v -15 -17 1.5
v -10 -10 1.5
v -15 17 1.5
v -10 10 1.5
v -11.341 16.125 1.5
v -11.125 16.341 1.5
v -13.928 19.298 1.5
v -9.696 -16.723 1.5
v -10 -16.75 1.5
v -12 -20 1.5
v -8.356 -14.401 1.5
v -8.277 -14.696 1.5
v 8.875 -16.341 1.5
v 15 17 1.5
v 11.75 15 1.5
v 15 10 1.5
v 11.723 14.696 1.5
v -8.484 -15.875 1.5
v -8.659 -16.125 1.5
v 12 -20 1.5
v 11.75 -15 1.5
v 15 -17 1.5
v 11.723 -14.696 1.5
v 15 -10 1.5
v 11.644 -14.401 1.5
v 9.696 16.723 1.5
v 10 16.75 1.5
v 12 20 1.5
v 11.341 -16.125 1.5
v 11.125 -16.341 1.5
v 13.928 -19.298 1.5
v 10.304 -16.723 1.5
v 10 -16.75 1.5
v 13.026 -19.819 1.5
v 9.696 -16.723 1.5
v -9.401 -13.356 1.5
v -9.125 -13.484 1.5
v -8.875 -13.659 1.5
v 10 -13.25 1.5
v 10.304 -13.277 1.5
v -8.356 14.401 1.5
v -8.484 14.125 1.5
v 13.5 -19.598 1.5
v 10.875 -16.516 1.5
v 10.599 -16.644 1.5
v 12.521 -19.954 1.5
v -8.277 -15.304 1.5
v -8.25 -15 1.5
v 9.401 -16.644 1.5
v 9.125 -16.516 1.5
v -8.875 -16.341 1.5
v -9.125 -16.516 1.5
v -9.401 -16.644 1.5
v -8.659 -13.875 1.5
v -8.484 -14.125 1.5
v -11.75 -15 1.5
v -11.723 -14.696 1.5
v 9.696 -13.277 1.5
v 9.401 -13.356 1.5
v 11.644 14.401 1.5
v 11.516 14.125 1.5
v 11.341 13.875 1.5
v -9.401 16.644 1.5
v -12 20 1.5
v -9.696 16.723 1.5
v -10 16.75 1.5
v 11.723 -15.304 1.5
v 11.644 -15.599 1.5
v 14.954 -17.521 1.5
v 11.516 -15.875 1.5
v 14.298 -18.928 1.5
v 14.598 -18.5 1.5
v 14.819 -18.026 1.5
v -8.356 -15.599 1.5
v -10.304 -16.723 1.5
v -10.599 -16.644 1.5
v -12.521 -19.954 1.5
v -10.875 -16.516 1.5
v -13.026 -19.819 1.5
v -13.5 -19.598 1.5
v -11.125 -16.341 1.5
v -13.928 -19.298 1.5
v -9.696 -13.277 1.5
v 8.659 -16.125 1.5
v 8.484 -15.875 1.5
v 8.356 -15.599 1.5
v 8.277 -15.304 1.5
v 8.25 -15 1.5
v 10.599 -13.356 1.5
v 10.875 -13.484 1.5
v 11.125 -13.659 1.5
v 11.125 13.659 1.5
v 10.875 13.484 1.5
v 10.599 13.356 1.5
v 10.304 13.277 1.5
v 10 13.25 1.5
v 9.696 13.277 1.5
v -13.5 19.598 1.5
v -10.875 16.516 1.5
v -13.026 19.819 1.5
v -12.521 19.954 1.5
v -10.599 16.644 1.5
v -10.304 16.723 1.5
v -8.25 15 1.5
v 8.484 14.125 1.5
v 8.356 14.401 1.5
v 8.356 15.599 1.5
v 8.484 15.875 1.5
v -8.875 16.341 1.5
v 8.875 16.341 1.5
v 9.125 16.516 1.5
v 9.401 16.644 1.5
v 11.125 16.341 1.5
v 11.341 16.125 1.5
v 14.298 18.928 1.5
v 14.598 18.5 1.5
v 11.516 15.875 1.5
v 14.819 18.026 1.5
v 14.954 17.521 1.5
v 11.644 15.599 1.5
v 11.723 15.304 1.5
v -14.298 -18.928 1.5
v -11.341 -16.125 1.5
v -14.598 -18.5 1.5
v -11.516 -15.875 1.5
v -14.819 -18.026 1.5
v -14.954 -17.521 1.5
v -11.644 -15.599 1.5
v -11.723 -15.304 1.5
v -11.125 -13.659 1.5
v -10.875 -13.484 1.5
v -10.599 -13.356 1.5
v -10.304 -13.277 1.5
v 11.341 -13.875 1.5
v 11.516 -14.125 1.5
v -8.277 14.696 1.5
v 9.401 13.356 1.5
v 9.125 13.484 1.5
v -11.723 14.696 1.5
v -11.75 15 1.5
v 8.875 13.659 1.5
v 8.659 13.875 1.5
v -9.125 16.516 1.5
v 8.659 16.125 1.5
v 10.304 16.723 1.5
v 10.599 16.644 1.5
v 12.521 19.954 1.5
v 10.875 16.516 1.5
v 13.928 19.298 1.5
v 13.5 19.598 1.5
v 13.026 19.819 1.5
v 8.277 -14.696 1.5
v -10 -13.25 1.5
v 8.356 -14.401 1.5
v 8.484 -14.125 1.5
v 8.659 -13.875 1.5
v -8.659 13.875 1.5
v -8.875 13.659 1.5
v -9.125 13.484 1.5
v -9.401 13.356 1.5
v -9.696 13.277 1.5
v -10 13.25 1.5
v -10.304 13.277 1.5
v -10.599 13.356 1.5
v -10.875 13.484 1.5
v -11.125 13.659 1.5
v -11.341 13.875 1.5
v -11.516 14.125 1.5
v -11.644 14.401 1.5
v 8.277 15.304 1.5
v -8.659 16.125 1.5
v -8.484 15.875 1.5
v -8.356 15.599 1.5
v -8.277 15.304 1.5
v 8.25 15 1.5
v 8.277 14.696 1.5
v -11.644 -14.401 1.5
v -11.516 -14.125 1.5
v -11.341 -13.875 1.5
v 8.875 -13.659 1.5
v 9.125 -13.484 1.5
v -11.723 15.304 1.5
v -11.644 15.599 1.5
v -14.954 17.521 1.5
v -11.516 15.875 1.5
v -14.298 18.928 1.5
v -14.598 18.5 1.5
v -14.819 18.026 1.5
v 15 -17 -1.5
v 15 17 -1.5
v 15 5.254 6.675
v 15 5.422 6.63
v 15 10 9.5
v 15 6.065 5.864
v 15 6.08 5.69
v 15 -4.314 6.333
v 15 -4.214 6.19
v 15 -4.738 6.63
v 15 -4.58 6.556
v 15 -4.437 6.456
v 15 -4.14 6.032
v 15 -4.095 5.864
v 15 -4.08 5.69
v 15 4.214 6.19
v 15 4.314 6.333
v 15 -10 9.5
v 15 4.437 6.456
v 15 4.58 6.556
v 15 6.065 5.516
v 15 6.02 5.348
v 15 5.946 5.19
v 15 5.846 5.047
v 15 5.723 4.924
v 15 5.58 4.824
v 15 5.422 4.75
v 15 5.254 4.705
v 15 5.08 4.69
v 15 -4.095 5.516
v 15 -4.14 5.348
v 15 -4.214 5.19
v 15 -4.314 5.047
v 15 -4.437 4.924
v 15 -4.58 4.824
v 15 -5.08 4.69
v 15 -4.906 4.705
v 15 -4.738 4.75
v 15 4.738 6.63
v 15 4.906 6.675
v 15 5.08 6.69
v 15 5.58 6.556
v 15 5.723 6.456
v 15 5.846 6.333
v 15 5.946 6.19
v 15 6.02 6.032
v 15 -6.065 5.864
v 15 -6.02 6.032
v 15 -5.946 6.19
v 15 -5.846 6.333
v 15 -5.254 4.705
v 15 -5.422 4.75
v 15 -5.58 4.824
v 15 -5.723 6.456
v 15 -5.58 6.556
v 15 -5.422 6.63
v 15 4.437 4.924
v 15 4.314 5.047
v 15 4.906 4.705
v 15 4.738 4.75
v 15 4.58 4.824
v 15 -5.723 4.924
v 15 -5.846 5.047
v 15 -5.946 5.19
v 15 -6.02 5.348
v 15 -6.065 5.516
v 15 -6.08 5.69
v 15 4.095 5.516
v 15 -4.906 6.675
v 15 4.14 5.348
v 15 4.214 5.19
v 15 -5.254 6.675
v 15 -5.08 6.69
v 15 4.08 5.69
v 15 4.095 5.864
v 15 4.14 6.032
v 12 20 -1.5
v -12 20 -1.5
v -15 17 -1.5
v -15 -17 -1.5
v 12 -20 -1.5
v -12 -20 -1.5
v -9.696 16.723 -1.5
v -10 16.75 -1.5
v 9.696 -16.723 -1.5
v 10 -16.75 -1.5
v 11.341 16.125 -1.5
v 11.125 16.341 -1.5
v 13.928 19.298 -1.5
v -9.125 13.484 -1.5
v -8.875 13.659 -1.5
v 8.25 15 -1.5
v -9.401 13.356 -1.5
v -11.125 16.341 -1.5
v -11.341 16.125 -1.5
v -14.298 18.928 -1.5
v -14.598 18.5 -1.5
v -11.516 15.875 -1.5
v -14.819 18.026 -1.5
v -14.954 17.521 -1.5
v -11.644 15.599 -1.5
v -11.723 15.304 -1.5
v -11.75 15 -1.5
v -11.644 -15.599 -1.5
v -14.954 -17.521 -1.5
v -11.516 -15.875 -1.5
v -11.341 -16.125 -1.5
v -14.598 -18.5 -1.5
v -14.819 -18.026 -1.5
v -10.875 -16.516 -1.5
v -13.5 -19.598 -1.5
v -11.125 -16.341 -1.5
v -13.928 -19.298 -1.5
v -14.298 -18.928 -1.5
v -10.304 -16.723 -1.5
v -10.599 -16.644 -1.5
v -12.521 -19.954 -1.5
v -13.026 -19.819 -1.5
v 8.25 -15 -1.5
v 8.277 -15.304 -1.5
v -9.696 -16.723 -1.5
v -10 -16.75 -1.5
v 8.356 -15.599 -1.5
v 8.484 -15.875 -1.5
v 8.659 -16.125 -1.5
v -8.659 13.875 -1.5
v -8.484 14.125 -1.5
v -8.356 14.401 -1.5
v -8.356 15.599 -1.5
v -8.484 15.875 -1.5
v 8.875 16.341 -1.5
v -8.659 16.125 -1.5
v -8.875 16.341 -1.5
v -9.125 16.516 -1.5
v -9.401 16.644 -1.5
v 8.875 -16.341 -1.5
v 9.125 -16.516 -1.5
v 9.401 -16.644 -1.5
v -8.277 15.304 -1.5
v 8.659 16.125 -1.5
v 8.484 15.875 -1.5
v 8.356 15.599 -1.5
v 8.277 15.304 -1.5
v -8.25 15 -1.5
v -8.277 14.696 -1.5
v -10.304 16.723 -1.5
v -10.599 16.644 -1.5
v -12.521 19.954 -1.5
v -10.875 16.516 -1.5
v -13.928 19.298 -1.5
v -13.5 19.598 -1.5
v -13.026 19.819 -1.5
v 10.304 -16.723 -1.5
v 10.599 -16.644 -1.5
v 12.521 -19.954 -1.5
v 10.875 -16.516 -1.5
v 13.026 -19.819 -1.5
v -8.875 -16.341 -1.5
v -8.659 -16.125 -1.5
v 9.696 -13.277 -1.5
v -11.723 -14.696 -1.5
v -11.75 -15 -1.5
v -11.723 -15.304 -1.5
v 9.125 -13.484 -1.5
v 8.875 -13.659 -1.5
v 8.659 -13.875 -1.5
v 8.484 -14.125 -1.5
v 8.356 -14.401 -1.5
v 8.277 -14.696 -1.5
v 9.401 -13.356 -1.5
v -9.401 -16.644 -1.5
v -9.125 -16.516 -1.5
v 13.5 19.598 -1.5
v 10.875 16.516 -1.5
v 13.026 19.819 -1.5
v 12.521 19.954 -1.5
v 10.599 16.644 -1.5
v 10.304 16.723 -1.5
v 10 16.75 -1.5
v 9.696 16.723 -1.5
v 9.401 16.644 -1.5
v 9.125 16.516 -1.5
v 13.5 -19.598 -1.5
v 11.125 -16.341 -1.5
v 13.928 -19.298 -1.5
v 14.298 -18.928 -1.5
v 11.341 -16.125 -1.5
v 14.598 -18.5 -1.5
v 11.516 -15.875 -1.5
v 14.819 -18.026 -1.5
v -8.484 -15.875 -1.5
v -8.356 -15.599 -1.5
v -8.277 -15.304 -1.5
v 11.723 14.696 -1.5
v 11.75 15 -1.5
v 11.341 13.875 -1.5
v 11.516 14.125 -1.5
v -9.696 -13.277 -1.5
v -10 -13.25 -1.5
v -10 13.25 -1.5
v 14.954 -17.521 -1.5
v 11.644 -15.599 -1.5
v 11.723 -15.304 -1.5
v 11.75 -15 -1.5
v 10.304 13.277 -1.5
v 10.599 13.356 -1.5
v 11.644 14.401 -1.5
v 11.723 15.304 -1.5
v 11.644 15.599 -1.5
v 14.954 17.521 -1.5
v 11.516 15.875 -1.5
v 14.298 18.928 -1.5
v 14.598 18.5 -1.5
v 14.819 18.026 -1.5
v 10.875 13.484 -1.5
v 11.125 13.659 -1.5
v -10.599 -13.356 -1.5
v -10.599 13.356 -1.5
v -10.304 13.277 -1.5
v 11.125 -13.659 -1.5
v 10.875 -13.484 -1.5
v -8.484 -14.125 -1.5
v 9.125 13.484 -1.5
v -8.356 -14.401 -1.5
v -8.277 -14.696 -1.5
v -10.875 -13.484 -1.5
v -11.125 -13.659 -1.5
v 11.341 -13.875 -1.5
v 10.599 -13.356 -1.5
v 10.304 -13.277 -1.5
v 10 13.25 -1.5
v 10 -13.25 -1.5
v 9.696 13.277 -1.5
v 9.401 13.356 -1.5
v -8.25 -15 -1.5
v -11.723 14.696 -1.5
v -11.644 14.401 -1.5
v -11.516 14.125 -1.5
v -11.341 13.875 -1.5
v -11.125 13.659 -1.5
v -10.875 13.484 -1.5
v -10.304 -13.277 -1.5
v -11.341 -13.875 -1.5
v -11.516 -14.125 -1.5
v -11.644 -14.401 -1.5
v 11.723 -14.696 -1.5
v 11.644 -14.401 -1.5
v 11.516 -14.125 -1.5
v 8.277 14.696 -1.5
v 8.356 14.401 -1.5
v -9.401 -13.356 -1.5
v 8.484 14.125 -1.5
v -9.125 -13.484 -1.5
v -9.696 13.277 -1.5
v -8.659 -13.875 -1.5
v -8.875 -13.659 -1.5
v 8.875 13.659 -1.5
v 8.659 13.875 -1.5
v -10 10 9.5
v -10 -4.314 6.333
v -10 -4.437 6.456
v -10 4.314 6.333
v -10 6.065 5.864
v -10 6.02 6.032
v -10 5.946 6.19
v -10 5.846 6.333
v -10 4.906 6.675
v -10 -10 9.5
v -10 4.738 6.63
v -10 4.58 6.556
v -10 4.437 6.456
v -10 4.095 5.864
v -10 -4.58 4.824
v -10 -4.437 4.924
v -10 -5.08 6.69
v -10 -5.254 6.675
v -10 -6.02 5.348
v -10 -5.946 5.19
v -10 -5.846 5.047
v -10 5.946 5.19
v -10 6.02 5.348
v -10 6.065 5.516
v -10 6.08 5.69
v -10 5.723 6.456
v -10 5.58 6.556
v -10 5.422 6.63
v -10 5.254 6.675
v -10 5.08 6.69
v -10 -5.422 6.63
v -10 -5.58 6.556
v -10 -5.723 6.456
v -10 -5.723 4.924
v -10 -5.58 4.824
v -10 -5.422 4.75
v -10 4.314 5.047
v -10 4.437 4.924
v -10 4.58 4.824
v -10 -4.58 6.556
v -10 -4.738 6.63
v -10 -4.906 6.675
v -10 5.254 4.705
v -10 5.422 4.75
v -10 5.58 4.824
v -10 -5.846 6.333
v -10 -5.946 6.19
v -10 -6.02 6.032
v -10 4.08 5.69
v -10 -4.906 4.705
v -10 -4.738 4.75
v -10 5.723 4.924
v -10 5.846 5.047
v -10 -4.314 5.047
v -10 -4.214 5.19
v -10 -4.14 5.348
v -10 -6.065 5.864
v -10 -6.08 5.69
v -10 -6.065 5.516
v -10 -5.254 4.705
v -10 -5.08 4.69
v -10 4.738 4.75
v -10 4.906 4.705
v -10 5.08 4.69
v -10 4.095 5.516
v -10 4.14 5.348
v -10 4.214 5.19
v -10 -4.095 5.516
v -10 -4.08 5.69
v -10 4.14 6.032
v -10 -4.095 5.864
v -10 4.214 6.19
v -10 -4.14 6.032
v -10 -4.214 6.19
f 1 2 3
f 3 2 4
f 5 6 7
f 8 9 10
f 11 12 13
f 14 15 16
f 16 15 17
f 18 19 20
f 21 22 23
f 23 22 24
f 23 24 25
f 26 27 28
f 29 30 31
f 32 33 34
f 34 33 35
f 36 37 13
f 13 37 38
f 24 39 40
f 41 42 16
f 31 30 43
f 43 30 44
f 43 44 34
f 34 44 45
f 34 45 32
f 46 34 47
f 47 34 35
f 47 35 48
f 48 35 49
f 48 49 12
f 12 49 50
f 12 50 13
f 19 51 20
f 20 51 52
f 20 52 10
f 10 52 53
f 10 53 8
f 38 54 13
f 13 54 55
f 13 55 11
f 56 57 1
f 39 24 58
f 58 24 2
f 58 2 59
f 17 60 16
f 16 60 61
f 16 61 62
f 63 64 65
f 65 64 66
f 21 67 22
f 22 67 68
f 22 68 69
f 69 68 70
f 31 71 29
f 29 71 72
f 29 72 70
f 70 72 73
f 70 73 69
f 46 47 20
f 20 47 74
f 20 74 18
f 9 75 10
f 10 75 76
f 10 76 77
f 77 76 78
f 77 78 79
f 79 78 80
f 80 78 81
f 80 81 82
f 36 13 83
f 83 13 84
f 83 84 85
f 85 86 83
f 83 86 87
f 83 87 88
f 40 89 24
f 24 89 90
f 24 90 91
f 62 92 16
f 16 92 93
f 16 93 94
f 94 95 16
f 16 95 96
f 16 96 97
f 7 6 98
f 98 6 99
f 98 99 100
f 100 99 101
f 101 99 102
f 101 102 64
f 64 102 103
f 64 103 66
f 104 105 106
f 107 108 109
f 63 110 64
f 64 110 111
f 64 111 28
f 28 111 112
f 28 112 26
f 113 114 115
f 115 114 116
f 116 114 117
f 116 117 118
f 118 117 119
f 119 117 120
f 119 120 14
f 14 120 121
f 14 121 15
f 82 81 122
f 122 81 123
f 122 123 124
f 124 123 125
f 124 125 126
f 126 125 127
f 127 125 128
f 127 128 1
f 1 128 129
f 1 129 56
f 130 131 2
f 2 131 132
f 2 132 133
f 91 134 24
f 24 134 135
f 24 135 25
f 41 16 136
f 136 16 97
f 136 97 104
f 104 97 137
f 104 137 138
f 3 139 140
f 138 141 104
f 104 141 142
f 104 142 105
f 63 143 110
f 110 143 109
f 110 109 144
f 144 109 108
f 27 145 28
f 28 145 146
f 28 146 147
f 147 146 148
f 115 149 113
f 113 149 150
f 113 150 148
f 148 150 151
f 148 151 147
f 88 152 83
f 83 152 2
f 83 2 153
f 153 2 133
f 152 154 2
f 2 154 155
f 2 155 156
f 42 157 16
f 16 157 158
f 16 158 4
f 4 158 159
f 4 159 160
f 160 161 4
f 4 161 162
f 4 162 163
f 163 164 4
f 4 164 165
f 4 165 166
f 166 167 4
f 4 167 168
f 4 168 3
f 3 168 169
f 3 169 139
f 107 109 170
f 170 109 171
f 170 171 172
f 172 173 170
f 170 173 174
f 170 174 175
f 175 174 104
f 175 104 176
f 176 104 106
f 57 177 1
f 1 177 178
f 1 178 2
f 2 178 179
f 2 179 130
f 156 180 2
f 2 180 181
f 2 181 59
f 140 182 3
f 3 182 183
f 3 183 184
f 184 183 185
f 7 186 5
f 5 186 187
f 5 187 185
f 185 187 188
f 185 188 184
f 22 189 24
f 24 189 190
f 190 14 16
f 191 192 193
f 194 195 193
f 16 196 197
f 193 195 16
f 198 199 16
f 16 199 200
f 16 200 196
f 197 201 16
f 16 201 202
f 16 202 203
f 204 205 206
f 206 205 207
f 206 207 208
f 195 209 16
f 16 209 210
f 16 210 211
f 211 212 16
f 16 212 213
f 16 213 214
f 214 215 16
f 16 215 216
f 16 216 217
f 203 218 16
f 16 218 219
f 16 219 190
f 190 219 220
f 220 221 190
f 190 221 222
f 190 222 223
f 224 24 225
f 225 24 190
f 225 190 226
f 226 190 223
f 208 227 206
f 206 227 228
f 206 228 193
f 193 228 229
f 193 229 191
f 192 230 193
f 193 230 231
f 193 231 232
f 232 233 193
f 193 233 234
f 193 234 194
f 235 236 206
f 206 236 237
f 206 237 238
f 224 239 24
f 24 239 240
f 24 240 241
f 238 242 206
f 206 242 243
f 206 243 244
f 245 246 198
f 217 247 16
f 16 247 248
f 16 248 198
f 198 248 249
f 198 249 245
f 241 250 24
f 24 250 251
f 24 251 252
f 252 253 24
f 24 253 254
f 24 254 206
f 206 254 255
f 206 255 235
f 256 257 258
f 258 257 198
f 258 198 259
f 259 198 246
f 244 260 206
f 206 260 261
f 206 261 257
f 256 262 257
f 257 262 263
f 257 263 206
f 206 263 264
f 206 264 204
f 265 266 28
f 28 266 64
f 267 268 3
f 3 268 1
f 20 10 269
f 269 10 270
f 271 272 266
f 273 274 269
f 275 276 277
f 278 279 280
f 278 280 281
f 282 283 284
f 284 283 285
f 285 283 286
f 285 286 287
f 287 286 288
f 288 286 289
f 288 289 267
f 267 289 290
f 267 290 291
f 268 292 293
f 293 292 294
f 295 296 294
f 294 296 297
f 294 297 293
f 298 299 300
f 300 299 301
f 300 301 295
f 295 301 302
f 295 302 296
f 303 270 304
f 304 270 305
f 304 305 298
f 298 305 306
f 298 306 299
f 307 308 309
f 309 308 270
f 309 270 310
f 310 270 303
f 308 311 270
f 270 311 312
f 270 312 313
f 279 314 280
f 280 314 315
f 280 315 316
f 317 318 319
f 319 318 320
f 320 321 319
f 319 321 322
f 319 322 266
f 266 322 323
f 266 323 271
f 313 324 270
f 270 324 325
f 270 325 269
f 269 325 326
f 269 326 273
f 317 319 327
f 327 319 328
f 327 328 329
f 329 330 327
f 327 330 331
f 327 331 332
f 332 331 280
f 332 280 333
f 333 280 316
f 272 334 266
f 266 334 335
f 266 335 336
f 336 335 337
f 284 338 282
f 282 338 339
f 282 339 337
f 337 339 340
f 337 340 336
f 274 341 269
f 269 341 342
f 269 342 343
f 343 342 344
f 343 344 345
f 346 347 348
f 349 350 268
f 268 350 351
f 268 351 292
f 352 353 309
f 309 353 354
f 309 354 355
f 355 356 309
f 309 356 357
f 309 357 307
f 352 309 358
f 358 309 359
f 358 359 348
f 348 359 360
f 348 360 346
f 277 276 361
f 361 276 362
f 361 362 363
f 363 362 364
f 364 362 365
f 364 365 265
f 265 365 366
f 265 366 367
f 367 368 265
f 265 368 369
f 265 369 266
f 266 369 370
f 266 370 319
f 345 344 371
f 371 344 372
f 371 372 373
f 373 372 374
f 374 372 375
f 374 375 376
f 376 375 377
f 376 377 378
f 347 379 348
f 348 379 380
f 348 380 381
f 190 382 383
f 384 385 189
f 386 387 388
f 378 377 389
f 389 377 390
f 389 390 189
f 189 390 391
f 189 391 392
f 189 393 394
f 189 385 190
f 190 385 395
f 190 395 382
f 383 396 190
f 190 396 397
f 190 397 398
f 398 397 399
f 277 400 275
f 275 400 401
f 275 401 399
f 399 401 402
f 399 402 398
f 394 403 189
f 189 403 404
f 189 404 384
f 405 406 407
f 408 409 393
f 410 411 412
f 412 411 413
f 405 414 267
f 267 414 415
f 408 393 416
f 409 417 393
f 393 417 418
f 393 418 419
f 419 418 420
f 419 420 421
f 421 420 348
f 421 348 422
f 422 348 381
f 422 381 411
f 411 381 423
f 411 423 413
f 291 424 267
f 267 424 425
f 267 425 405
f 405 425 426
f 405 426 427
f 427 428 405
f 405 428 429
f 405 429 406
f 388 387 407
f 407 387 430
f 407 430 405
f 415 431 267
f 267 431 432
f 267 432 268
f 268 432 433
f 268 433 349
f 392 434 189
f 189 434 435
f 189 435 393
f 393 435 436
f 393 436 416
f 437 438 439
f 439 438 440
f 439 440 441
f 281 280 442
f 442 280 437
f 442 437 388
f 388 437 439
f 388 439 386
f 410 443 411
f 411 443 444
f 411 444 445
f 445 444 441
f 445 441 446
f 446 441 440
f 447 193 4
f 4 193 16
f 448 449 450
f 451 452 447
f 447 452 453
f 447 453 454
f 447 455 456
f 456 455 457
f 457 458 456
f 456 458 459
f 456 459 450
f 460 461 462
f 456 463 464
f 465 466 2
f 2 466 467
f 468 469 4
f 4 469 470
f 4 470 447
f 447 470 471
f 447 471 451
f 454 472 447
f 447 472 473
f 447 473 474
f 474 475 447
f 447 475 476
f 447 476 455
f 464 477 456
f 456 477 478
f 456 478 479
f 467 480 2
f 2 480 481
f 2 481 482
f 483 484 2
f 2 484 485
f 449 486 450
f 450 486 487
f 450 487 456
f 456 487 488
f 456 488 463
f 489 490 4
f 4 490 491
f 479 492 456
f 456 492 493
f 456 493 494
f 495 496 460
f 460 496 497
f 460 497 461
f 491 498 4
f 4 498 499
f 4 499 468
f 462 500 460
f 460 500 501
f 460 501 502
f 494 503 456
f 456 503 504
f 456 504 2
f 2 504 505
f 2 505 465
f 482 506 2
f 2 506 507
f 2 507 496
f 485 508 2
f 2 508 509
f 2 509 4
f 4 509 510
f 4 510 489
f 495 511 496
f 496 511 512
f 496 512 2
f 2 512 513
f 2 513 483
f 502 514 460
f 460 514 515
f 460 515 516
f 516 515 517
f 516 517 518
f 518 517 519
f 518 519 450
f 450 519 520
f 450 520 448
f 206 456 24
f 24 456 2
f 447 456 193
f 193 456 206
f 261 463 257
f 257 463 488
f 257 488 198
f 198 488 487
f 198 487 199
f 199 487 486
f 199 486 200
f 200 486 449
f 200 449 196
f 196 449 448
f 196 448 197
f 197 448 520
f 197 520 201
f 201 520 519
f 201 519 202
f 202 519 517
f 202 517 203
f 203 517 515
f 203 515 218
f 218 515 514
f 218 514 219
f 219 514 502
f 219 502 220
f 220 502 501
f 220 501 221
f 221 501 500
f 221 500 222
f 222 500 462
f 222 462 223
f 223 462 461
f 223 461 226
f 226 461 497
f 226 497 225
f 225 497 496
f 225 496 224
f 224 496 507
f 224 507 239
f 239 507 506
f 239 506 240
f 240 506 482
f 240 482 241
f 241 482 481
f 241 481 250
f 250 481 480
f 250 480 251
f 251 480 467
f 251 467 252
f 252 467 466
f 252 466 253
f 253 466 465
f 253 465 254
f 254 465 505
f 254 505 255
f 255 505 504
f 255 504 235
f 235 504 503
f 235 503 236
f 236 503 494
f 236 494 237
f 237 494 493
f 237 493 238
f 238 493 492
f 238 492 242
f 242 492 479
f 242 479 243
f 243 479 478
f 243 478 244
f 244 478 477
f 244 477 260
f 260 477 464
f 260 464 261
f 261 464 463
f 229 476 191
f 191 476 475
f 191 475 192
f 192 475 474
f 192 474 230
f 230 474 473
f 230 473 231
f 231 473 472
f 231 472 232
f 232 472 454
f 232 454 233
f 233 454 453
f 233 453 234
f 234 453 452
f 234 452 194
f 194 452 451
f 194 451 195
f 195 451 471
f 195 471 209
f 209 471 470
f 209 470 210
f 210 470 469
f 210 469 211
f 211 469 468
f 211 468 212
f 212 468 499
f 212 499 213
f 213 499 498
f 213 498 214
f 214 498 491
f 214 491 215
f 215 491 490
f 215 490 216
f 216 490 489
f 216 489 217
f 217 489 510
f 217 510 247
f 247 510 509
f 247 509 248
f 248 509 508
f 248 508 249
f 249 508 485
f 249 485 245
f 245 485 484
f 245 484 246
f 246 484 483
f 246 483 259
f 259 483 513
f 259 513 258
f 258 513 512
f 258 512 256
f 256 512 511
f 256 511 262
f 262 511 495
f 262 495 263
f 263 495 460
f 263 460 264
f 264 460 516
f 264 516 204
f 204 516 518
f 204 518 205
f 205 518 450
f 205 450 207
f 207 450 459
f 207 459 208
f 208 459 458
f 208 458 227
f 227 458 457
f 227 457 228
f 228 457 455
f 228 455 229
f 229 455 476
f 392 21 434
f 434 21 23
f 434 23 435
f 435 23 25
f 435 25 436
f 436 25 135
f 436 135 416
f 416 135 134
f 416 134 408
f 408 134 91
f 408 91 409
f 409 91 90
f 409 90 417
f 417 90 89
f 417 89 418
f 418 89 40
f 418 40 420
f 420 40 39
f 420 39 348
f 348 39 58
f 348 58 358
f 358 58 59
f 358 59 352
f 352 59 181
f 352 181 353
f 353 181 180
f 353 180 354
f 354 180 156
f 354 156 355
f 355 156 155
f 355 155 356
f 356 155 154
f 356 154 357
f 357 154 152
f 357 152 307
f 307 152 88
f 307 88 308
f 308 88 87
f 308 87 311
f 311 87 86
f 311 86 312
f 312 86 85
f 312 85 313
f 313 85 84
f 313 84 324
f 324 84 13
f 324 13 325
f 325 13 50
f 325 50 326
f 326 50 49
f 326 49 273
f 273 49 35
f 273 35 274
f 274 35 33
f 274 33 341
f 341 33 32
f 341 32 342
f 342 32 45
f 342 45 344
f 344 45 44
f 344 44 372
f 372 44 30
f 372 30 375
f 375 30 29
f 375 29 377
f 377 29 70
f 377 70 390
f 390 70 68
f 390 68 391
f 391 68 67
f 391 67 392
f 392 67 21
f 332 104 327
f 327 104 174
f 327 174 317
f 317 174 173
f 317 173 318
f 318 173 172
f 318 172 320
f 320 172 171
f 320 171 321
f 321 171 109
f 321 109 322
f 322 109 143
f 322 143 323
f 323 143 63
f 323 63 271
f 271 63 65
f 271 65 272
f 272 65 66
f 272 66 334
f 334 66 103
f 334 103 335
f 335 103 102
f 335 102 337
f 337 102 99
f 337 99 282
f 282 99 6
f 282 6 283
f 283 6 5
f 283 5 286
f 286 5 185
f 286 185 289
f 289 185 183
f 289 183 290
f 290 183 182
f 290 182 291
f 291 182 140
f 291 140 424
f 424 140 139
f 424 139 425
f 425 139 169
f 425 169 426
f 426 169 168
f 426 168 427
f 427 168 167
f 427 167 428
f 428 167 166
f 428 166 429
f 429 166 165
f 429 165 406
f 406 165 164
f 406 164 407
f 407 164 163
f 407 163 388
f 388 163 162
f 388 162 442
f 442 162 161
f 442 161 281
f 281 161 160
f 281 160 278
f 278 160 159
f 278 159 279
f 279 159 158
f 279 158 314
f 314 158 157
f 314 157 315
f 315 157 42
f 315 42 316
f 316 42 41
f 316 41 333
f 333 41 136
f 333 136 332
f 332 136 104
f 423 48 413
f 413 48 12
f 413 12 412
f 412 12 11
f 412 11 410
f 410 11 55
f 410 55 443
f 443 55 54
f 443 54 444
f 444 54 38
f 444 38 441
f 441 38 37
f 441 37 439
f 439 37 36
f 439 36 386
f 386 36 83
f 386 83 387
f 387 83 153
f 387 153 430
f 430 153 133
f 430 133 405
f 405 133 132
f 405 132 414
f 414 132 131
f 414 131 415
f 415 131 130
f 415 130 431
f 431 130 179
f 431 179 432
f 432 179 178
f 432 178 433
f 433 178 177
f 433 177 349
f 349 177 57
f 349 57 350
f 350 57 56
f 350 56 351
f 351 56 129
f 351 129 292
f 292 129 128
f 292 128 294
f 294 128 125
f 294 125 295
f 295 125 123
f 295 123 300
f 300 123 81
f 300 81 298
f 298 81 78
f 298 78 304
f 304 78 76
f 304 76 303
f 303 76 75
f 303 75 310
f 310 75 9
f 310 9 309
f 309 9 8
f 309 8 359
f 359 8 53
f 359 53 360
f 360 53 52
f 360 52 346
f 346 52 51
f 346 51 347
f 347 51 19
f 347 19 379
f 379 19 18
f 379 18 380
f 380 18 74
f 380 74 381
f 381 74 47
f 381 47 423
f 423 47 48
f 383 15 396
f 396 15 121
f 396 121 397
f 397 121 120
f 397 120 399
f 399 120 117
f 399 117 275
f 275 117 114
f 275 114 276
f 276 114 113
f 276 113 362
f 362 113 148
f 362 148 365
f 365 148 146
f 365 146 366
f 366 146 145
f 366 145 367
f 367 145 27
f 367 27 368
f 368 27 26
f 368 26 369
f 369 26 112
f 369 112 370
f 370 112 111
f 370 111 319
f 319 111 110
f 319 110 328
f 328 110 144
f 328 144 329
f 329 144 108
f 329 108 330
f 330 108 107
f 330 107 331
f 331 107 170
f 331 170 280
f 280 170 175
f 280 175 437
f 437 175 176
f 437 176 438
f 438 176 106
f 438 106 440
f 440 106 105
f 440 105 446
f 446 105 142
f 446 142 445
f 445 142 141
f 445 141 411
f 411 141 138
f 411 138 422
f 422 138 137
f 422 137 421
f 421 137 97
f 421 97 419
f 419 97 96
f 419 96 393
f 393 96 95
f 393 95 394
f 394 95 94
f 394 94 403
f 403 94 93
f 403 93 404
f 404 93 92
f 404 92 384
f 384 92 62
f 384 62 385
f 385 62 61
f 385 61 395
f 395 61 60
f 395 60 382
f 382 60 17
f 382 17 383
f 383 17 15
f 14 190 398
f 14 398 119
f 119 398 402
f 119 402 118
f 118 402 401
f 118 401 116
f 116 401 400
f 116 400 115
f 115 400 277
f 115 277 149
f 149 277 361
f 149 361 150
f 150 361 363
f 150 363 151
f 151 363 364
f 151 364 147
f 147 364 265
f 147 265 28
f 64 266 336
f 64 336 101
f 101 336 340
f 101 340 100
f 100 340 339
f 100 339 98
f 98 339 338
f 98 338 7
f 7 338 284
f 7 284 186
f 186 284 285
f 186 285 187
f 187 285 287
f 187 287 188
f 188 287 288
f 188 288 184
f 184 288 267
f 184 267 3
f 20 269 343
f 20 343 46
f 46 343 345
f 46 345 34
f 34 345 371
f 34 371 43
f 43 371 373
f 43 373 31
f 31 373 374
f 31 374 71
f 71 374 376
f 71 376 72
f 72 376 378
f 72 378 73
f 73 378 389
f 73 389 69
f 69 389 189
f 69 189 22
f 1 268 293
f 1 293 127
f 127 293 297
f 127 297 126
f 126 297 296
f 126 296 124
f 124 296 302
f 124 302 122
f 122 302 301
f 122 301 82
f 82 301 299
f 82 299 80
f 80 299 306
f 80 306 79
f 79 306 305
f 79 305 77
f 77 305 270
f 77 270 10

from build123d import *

# Parameters (mm, degrees)
SKETCH_1_W              = 30
SKETCH_1_H              = 40
EXTRUDE_1_DEPTH         = 1.5
SKETCH_2_W              = 25
SKETCH_2_H              = 20
EXTRUDE_2_DEPTH         = 8
HOLE_WIZARD_2_0_2_3_D   = 2
HOLE_WIZARD_3_5_3_5_1_D = 3.5
FILLET_1_R              = 3


with BuildPart() as part:
    # 草圖1 → 填料-伸長1 (new, symmetric)
    with BuildSketch(Plane.XY):
        Rectangle(SKETCH_1_W, SKETCH_1_H)
    extrude(amount=EXTRUDE_1_DEPTH, both=True)

    # 草圖2 → 填料-伸長2 (add)
    with BuildSketch(Plane.XY.offset(1.5)):
        with Locations((2.5, 0)):
            Rectangle(SKETCH_2_W, SKETCH_2_H)
    extrude(amount=EXTRUDE_2_DEPTH)

    # Ø2.0 (2) 直徑孔3 (through all)
    with Locations(Plane.ZY.offset(10)):
        with Locations((5.69, 5.08), (5.69, -5.08)):
            Hole(HOLE_WIZARD_2_0_2_3_D / 2)

    # Ø3.5 (3.5) 直徑孔1 (through all)
    with Locations(Plane.XY.offset(1.5)):
        with Locations((10, 15), (-10, -15), (-10, 15), (10, -15)):
            Hole(HOLE_WIZARD_3_5_3_5_1_D / 2)

    # 圓角1
    fillet_1_edges = [part.edges().sort_by_distance(p)[0] for p in [
        (15, -20, 0),
        (-15, -20, 0),
        (-15, 20, 0),
        (15, 20, 0),
    ]]
    fillet(fillet_1_edges, radius=FILLET_1_R)


solid = part.part
